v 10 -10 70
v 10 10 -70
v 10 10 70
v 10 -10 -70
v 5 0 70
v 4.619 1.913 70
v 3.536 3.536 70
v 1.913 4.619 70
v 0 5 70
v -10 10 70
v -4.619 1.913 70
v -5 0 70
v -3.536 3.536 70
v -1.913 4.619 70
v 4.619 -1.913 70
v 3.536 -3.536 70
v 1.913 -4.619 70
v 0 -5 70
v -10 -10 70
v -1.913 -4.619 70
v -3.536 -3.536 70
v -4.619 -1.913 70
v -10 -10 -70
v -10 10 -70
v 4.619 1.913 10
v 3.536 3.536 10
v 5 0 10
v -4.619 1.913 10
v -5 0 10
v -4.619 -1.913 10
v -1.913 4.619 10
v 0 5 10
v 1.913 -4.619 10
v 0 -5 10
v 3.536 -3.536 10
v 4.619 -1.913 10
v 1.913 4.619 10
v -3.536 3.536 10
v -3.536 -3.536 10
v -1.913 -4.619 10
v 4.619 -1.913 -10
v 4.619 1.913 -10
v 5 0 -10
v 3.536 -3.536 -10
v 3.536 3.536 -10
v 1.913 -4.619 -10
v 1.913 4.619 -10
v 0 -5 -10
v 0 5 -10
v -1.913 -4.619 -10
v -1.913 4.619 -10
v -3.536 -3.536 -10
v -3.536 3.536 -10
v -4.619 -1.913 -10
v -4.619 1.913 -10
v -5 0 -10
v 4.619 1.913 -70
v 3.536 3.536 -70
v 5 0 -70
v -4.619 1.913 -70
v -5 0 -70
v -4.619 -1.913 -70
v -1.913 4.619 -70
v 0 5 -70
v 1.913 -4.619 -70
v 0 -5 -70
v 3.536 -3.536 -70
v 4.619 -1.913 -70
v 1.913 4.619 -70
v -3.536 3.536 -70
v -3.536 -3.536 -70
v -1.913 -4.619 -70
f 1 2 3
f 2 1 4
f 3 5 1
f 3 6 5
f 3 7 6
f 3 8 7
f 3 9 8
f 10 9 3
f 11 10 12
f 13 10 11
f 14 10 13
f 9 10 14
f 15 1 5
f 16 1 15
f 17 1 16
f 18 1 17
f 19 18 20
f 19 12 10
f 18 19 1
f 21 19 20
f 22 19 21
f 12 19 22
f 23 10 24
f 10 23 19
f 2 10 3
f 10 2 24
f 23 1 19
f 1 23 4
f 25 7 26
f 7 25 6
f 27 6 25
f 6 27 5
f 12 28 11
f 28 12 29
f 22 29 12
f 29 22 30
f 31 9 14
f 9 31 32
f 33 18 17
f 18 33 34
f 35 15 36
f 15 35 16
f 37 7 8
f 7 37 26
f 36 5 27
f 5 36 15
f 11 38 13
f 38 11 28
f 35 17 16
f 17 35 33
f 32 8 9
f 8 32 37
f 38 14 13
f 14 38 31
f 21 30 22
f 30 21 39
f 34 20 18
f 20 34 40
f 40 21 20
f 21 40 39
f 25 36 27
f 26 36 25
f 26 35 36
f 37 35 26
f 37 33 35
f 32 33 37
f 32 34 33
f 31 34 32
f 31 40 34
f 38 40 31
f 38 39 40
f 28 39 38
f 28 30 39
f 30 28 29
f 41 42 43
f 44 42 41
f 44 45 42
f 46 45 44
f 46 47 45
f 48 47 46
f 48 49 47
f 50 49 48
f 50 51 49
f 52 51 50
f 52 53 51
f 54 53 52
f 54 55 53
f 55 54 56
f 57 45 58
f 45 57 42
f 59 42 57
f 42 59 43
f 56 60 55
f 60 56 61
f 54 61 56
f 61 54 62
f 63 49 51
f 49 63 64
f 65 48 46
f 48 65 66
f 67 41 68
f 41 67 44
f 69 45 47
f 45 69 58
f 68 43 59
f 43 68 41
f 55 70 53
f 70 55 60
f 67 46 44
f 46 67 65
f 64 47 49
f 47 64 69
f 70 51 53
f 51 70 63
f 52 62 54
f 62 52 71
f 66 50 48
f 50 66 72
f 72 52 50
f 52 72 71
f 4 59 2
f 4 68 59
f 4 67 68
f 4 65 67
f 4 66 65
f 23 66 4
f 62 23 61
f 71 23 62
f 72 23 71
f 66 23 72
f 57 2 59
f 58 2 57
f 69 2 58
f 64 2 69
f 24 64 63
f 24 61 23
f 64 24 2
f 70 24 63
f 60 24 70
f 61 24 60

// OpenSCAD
// Define dimensions
cube_size = 20; // Size of the cube
hole_diameter = 10; // Diameter of the cylindrical hole
hole_radius = hole_diameter / 2; // Radius of the cylindrical hole
layer_height = cube_size; // Height of each layer

// Function to create a cube block with a cylindrical hole
module cube_block_with_cylindrical_hole() {
    difference() {
        cube([cube_size, cube_size, cube_size], center = true);
        cylinder(r = hole_radius, h = cube_size * 2, center = true);
    }
}

// Function to create a solid cube block
module empty_cube_block() {
    cube([cube_size, cube_size, cube_size], center = true);
}

// Assemble the model based on the graph_dict
translate([0, 0, layer_height * 3]) cube_block_with_cylindrical_hole(); // Layer 1
translate([0, 0, layer_height * 2]) cube_block_with_cylindrical_hole(); // Layer 2
translate([0, 0, layer_height * 1]) cube_block_with_cylindrical_hole(); // Layer 3
translate([0, 0, 0]) empty_cube_block(); // Layer 4
translate([0, 0, -layer_height * 1]) cube_block_with_cylindrical_hole(); // Layer 5
translate([0, 0, -layer_height * 2]) cube_block_with_cylindrical_hole(); // Layer 6
translate([0, 0, -layer_height * 3]) cube_block_with_cylindrical_hole(); // Layer 7
